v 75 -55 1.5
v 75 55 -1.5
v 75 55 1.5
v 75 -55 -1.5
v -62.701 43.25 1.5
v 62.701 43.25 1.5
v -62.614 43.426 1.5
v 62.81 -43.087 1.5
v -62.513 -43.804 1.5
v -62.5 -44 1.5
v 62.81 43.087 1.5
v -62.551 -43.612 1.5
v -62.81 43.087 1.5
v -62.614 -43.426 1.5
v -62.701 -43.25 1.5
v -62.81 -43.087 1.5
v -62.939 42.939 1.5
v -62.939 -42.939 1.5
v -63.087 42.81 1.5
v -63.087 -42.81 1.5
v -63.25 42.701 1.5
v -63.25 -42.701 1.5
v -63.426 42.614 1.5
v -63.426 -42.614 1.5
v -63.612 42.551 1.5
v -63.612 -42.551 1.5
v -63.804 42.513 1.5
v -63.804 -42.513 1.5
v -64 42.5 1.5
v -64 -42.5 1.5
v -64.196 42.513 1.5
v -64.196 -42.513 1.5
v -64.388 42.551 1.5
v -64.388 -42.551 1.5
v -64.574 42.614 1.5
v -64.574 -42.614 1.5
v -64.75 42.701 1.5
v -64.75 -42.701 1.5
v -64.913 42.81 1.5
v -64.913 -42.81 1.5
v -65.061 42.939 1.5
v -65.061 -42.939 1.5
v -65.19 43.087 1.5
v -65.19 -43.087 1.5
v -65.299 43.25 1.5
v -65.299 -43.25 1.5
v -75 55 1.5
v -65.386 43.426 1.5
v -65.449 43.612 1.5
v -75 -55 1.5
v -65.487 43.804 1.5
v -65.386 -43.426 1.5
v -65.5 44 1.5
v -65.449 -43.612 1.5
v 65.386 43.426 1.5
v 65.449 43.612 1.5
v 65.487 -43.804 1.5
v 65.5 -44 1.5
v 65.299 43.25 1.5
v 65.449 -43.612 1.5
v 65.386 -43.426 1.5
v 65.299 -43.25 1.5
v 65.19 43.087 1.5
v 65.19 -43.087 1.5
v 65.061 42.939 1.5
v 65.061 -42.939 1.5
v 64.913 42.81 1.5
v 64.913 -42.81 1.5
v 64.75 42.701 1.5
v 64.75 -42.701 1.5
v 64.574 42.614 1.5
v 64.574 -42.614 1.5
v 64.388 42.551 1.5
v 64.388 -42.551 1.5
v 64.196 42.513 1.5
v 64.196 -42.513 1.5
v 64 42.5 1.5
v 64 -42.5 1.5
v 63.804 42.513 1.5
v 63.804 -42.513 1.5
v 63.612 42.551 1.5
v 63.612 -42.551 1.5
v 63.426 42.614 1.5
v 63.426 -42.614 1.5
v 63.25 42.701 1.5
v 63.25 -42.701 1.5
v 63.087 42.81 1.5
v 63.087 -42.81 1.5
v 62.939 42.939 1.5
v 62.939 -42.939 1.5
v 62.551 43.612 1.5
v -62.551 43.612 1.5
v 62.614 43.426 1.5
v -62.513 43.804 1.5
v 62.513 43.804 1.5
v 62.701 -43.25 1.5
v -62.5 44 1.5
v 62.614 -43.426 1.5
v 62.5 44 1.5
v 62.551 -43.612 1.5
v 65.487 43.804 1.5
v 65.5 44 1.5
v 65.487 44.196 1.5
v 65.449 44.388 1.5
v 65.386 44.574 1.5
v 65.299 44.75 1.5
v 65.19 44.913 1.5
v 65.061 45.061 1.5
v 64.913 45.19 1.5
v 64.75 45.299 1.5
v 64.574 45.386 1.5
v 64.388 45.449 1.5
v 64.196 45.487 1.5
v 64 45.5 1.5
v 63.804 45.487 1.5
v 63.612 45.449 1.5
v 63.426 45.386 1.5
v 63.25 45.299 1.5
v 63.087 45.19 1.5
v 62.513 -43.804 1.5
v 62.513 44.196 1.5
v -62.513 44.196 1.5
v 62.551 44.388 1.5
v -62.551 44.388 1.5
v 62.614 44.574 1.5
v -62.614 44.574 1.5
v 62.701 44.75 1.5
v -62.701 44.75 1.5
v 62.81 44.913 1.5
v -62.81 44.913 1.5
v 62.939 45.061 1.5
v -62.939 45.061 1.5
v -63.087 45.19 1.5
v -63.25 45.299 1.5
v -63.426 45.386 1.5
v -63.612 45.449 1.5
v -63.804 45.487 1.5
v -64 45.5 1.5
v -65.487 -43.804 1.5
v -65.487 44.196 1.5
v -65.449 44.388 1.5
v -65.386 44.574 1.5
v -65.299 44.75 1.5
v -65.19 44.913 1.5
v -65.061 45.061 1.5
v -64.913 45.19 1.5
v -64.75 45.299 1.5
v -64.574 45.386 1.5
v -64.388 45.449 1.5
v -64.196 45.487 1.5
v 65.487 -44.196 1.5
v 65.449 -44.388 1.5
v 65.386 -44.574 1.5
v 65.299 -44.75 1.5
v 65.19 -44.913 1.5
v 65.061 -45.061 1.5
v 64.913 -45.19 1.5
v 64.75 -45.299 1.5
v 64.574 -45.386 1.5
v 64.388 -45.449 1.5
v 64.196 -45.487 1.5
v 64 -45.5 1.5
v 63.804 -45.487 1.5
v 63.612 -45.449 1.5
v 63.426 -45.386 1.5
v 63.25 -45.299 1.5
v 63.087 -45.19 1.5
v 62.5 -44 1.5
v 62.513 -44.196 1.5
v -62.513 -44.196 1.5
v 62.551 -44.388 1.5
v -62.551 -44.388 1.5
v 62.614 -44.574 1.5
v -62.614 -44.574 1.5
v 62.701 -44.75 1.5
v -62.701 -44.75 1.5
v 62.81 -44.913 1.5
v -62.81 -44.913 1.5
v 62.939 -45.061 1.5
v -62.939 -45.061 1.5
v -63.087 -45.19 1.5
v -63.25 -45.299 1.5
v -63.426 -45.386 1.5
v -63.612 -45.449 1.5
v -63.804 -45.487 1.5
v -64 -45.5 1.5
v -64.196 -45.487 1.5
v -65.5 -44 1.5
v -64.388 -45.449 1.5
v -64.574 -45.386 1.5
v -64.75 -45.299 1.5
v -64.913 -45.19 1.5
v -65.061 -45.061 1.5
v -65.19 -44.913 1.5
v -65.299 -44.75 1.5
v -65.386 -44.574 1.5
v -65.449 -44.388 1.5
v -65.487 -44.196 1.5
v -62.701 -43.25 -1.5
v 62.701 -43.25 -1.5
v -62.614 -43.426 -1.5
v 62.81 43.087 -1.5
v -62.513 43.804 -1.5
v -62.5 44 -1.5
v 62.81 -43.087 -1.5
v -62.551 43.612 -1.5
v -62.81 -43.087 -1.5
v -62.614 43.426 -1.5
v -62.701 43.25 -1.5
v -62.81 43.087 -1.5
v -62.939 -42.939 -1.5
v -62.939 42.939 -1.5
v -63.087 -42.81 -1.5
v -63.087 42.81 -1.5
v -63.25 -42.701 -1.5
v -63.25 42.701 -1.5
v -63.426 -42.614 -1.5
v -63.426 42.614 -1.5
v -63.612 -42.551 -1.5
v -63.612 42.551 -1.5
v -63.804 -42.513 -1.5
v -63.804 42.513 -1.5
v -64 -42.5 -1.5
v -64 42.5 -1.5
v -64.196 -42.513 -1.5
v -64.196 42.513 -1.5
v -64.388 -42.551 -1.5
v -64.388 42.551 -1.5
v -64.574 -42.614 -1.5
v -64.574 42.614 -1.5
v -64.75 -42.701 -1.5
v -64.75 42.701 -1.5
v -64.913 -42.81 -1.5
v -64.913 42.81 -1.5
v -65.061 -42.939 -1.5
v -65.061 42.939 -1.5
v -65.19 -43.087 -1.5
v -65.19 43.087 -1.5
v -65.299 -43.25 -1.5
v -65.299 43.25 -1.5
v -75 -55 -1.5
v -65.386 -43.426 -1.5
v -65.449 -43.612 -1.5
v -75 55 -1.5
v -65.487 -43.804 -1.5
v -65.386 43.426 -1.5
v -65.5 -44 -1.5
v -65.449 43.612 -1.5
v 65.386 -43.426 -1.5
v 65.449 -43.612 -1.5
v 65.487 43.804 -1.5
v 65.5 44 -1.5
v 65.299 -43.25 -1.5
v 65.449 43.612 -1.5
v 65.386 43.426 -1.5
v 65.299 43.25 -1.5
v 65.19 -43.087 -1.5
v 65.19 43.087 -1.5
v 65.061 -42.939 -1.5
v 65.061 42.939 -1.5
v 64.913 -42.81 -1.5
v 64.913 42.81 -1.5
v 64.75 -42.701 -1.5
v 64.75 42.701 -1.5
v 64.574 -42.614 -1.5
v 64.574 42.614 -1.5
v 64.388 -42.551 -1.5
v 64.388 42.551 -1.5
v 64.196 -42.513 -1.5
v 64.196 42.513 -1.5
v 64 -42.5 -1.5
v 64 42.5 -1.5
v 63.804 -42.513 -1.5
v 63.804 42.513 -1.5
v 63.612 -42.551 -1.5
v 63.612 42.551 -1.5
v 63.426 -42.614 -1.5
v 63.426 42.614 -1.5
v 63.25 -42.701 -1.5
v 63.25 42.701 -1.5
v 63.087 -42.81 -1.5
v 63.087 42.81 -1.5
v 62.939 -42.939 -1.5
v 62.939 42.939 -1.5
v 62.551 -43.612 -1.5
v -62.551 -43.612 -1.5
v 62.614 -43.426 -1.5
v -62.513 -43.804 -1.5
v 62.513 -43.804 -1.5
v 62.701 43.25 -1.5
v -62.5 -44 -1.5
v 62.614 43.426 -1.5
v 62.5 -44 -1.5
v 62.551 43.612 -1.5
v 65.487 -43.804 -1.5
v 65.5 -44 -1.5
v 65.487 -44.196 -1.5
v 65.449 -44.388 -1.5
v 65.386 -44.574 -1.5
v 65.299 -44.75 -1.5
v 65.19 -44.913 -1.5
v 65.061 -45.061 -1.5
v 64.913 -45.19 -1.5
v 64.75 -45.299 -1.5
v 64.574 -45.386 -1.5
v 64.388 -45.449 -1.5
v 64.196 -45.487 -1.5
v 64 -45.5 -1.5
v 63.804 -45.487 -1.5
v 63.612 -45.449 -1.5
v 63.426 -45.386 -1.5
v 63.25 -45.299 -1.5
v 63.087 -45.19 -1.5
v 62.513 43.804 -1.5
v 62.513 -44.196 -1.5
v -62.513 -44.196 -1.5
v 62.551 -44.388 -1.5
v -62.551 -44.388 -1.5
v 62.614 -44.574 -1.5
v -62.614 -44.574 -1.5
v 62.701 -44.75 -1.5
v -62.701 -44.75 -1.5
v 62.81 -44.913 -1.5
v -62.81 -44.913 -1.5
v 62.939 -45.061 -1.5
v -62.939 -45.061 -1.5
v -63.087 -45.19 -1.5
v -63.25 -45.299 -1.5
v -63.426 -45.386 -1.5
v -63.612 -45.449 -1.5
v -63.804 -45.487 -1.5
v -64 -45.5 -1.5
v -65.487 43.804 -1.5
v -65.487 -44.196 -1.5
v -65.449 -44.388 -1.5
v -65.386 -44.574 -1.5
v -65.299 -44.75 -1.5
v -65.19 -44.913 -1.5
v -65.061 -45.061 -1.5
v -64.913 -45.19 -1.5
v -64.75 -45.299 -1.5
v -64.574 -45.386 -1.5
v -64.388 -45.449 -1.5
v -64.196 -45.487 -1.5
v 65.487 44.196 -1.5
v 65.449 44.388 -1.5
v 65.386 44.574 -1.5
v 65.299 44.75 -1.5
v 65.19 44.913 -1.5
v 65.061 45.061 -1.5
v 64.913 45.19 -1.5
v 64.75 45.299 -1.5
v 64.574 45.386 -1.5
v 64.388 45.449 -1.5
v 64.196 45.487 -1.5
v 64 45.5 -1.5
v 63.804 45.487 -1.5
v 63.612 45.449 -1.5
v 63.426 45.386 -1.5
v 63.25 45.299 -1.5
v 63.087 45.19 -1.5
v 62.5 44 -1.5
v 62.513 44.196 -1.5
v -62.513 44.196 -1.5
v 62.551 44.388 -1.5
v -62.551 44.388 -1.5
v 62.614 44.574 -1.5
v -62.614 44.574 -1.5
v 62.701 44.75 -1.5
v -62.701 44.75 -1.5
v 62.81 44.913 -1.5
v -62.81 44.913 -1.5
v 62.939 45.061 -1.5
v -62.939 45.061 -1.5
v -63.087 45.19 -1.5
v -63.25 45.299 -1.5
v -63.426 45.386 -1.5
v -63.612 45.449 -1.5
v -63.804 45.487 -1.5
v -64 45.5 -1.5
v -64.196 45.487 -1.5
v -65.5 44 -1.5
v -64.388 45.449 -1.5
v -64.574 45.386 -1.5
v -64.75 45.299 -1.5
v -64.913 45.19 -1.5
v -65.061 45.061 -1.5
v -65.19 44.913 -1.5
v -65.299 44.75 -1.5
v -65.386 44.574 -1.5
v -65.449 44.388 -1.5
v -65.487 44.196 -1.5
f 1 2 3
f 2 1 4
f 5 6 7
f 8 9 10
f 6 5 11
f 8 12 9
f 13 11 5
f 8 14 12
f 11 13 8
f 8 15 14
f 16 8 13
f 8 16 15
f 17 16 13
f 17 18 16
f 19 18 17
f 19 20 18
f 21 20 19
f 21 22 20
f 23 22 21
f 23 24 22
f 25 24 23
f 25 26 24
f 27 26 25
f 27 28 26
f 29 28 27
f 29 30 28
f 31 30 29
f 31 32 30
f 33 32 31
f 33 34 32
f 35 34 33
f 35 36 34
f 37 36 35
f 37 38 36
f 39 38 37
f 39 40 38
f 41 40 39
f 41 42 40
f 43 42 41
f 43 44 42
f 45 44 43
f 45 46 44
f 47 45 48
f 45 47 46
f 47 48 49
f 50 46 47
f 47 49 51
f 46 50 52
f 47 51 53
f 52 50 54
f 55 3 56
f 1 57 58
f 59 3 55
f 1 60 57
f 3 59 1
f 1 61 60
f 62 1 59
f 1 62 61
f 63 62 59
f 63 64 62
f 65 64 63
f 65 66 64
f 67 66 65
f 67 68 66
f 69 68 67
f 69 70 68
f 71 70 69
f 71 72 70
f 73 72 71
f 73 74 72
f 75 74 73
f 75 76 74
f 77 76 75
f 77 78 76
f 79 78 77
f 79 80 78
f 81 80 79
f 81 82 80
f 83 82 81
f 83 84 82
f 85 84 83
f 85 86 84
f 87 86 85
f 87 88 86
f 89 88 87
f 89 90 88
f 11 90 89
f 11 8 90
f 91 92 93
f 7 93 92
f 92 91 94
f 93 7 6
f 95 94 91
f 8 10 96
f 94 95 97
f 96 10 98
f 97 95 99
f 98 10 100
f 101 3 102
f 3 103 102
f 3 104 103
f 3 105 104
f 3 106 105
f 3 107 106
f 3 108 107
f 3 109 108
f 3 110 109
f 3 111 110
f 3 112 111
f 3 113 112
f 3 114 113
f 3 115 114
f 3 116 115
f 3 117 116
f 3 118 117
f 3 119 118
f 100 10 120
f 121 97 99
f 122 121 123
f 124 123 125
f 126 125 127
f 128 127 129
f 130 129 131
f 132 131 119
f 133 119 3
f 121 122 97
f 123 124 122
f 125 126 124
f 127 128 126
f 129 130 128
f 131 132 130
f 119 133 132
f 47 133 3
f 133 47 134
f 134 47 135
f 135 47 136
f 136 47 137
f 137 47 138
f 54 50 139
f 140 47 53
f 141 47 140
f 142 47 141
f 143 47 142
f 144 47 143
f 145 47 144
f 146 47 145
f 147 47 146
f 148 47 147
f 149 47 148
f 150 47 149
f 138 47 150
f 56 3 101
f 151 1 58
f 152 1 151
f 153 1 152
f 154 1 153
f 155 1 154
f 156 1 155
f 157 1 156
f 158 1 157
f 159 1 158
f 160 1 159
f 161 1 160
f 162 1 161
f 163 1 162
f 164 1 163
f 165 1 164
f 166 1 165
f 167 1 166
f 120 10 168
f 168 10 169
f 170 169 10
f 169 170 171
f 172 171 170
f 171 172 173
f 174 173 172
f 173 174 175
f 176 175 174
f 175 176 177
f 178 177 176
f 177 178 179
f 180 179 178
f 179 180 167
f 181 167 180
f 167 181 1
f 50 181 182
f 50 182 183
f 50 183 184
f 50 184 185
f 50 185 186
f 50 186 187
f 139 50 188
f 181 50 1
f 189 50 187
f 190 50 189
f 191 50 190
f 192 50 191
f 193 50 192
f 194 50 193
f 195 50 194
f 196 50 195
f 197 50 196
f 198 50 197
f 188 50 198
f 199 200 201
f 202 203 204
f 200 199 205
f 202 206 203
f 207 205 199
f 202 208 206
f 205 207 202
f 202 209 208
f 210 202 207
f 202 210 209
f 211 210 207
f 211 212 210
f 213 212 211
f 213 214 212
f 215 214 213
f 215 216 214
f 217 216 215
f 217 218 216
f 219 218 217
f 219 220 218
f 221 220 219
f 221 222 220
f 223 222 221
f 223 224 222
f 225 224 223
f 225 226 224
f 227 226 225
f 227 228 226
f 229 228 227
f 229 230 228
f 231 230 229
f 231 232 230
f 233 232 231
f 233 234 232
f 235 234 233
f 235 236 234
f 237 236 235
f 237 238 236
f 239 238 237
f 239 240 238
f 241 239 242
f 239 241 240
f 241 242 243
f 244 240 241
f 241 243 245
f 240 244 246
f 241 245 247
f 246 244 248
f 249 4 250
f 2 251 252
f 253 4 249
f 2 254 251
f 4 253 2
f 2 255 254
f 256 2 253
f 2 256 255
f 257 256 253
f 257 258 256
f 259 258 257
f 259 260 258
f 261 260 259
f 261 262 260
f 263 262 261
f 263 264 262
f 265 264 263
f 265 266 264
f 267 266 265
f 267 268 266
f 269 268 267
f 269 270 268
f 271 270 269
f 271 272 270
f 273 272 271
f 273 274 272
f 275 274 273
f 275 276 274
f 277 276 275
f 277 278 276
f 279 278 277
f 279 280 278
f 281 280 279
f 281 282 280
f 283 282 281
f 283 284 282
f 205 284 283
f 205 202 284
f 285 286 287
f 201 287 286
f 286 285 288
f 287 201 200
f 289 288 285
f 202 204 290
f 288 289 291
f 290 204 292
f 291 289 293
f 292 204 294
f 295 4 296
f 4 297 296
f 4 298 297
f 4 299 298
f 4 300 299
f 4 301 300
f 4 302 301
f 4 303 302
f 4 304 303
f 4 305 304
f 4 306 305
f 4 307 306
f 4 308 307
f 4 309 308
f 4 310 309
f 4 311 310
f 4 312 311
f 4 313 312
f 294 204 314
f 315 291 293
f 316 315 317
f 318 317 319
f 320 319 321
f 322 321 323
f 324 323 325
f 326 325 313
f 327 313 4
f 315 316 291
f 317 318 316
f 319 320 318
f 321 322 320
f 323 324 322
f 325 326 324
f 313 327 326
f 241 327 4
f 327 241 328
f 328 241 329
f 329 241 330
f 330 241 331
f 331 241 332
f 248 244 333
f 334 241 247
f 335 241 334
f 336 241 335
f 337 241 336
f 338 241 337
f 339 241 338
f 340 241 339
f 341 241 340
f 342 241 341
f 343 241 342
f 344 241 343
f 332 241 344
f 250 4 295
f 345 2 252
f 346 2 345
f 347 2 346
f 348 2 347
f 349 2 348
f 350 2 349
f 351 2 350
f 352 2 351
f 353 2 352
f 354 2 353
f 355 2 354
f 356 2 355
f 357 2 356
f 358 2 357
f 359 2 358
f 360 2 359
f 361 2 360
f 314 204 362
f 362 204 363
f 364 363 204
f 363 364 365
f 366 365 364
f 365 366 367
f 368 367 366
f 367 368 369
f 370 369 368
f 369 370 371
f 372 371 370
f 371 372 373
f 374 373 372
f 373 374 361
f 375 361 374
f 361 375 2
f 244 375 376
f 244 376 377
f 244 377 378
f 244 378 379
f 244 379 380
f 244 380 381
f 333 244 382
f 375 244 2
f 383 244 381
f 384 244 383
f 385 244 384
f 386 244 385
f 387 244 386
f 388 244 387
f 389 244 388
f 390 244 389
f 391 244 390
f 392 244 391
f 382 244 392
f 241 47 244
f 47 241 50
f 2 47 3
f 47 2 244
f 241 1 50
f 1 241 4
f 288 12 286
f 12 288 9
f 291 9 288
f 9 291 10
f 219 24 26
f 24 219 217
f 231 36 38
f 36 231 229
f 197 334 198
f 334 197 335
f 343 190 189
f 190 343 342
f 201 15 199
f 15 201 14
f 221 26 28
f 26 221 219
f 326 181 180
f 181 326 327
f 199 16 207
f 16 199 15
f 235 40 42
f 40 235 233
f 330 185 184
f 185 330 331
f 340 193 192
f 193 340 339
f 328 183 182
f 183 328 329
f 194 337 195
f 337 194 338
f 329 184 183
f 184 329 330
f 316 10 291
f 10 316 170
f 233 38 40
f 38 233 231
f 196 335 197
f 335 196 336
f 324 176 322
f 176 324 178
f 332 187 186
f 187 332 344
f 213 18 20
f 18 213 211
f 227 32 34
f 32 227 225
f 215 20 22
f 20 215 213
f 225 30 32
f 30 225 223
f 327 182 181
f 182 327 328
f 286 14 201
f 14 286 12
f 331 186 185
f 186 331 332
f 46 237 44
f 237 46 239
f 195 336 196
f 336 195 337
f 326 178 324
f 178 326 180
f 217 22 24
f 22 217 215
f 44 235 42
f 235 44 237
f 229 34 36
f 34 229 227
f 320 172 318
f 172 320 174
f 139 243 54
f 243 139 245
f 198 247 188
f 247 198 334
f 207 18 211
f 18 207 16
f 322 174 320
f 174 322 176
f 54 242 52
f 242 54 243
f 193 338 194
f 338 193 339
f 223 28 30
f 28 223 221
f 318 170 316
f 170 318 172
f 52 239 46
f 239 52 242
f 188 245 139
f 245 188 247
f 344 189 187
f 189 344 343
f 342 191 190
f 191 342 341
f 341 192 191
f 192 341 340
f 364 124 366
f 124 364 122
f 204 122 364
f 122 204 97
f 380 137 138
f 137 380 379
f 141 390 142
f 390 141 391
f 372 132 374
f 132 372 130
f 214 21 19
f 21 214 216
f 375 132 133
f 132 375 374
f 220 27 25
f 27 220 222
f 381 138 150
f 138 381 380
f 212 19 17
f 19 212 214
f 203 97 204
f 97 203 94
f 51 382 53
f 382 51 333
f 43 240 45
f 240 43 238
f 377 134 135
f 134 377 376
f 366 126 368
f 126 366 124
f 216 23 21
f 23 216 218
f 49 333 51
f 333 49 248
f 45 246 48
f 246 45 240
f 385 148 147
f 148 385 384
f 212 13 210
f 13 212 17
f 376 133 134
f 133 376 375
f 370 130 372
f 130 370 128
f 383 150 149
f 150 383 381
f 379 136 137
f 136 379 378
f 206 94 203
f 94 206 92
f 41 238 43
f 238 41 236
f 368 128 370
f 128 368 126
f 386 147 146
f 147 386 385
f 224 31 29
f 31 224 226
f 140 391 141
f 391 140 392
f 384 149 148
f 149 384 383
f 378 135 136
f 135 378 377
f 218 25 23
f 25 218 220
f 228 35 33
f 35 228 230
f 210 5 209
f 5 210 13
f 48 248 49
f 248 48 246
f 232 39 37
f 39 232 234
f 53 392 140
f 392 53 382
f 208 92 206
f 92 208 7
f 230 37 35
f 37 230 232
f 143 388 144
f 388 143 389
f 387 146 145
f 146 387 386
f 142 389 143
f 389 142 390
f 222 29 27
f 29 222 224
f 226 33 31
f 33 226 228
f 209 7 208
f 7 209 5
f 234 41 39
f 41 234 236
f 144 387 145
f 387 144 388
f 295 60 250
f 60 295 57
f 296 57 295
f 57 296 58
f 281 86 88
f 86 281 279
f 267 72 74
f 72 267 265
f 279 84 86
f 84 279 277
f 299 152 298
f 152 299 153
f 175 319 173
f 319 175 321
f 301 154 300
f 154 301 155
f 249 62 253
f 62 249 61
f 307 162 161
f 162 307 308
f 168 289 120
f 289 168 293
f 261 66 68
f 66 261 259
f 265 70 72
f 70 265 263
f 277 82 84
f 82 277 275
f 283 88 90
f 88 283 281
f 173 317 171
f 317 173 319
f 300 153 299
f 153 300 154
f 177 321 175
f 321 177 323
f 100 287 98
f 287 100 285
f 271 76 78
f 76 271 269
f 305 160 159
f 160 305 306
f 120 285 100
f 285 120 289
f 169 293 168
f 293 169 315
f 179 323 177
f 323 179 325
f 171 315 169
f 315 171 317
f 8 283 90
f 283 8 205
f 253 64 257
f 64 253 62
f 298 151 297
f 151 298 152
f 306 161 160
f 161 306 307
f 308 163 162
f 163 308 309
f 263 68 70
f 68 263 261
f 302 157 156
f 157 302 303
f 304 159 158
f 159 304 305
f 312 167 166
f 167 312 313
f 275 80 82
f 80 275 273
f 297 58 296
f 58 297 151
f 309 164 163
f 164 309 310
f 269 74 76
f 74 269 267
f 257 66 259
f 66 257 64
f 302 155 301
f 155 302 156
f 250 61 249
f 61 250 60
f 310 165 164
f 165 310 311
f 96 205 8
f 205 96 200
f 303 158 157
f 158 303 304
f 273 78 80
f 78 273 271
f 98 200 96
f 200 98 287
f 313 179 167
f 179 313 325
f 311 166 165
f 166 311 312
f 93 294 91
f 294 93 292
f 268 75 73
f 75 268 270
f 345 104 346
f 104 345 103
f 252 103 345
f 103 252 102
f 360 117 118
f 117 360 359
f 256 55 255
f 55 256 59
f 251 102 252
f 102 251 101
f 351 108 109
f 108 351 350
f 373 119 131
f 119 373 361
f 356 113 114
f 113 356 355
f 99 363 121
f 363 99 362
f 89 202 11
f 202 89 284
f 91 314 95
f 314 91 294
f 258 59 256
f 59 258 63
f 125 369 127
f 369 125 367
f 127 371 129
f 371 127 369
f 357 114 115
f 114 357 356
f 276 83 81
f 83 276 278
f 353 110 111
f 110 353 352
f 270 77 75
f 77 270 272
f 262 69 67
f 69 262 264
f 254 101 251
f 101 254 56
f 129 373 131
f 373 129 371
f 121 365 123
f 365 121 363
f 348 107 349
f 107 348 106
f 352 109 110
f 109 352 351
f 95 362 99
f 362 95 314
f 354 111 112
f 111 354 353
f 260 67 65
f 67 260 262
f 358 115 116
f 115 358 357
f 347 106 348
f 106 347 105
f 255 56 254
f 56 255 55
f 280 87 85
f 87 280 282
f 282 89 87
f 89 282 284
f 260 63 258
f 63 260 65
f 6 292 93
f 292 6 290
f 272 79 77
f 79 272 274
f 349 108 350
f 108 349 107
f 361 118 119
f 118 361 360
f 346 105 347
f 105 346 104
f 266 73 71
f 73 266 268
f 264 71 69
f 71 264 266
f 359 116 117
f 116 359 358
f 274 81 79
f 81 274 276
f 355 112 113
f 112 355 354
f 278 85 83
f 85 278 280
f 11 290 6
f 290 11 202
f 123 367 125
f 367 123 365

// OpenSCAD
// ========================================
// a 150 x 110 x 3 mm plate with four 3 mm holes
// NeuroCAD canonical IR; dimensions are millimetres
// ========================================
$fn = 48;

difference() {
  cube(size=[150, 110, 3], center=true);
  translate([-64, -44, 0]) {
    cylinder(r=1.5, h=5, center=true);
  }
  translate([-64, 44, 0]) {
    cylinder(r=1.5, h=5, center=true);
  }
  translate([64, -44, 0]) {
    cylinder(r=1.5, h=5, center=true);
  }
  translate([64, 44, 0]) {
    cylinder(r=1.5, h=5, center=true);
  }
}
